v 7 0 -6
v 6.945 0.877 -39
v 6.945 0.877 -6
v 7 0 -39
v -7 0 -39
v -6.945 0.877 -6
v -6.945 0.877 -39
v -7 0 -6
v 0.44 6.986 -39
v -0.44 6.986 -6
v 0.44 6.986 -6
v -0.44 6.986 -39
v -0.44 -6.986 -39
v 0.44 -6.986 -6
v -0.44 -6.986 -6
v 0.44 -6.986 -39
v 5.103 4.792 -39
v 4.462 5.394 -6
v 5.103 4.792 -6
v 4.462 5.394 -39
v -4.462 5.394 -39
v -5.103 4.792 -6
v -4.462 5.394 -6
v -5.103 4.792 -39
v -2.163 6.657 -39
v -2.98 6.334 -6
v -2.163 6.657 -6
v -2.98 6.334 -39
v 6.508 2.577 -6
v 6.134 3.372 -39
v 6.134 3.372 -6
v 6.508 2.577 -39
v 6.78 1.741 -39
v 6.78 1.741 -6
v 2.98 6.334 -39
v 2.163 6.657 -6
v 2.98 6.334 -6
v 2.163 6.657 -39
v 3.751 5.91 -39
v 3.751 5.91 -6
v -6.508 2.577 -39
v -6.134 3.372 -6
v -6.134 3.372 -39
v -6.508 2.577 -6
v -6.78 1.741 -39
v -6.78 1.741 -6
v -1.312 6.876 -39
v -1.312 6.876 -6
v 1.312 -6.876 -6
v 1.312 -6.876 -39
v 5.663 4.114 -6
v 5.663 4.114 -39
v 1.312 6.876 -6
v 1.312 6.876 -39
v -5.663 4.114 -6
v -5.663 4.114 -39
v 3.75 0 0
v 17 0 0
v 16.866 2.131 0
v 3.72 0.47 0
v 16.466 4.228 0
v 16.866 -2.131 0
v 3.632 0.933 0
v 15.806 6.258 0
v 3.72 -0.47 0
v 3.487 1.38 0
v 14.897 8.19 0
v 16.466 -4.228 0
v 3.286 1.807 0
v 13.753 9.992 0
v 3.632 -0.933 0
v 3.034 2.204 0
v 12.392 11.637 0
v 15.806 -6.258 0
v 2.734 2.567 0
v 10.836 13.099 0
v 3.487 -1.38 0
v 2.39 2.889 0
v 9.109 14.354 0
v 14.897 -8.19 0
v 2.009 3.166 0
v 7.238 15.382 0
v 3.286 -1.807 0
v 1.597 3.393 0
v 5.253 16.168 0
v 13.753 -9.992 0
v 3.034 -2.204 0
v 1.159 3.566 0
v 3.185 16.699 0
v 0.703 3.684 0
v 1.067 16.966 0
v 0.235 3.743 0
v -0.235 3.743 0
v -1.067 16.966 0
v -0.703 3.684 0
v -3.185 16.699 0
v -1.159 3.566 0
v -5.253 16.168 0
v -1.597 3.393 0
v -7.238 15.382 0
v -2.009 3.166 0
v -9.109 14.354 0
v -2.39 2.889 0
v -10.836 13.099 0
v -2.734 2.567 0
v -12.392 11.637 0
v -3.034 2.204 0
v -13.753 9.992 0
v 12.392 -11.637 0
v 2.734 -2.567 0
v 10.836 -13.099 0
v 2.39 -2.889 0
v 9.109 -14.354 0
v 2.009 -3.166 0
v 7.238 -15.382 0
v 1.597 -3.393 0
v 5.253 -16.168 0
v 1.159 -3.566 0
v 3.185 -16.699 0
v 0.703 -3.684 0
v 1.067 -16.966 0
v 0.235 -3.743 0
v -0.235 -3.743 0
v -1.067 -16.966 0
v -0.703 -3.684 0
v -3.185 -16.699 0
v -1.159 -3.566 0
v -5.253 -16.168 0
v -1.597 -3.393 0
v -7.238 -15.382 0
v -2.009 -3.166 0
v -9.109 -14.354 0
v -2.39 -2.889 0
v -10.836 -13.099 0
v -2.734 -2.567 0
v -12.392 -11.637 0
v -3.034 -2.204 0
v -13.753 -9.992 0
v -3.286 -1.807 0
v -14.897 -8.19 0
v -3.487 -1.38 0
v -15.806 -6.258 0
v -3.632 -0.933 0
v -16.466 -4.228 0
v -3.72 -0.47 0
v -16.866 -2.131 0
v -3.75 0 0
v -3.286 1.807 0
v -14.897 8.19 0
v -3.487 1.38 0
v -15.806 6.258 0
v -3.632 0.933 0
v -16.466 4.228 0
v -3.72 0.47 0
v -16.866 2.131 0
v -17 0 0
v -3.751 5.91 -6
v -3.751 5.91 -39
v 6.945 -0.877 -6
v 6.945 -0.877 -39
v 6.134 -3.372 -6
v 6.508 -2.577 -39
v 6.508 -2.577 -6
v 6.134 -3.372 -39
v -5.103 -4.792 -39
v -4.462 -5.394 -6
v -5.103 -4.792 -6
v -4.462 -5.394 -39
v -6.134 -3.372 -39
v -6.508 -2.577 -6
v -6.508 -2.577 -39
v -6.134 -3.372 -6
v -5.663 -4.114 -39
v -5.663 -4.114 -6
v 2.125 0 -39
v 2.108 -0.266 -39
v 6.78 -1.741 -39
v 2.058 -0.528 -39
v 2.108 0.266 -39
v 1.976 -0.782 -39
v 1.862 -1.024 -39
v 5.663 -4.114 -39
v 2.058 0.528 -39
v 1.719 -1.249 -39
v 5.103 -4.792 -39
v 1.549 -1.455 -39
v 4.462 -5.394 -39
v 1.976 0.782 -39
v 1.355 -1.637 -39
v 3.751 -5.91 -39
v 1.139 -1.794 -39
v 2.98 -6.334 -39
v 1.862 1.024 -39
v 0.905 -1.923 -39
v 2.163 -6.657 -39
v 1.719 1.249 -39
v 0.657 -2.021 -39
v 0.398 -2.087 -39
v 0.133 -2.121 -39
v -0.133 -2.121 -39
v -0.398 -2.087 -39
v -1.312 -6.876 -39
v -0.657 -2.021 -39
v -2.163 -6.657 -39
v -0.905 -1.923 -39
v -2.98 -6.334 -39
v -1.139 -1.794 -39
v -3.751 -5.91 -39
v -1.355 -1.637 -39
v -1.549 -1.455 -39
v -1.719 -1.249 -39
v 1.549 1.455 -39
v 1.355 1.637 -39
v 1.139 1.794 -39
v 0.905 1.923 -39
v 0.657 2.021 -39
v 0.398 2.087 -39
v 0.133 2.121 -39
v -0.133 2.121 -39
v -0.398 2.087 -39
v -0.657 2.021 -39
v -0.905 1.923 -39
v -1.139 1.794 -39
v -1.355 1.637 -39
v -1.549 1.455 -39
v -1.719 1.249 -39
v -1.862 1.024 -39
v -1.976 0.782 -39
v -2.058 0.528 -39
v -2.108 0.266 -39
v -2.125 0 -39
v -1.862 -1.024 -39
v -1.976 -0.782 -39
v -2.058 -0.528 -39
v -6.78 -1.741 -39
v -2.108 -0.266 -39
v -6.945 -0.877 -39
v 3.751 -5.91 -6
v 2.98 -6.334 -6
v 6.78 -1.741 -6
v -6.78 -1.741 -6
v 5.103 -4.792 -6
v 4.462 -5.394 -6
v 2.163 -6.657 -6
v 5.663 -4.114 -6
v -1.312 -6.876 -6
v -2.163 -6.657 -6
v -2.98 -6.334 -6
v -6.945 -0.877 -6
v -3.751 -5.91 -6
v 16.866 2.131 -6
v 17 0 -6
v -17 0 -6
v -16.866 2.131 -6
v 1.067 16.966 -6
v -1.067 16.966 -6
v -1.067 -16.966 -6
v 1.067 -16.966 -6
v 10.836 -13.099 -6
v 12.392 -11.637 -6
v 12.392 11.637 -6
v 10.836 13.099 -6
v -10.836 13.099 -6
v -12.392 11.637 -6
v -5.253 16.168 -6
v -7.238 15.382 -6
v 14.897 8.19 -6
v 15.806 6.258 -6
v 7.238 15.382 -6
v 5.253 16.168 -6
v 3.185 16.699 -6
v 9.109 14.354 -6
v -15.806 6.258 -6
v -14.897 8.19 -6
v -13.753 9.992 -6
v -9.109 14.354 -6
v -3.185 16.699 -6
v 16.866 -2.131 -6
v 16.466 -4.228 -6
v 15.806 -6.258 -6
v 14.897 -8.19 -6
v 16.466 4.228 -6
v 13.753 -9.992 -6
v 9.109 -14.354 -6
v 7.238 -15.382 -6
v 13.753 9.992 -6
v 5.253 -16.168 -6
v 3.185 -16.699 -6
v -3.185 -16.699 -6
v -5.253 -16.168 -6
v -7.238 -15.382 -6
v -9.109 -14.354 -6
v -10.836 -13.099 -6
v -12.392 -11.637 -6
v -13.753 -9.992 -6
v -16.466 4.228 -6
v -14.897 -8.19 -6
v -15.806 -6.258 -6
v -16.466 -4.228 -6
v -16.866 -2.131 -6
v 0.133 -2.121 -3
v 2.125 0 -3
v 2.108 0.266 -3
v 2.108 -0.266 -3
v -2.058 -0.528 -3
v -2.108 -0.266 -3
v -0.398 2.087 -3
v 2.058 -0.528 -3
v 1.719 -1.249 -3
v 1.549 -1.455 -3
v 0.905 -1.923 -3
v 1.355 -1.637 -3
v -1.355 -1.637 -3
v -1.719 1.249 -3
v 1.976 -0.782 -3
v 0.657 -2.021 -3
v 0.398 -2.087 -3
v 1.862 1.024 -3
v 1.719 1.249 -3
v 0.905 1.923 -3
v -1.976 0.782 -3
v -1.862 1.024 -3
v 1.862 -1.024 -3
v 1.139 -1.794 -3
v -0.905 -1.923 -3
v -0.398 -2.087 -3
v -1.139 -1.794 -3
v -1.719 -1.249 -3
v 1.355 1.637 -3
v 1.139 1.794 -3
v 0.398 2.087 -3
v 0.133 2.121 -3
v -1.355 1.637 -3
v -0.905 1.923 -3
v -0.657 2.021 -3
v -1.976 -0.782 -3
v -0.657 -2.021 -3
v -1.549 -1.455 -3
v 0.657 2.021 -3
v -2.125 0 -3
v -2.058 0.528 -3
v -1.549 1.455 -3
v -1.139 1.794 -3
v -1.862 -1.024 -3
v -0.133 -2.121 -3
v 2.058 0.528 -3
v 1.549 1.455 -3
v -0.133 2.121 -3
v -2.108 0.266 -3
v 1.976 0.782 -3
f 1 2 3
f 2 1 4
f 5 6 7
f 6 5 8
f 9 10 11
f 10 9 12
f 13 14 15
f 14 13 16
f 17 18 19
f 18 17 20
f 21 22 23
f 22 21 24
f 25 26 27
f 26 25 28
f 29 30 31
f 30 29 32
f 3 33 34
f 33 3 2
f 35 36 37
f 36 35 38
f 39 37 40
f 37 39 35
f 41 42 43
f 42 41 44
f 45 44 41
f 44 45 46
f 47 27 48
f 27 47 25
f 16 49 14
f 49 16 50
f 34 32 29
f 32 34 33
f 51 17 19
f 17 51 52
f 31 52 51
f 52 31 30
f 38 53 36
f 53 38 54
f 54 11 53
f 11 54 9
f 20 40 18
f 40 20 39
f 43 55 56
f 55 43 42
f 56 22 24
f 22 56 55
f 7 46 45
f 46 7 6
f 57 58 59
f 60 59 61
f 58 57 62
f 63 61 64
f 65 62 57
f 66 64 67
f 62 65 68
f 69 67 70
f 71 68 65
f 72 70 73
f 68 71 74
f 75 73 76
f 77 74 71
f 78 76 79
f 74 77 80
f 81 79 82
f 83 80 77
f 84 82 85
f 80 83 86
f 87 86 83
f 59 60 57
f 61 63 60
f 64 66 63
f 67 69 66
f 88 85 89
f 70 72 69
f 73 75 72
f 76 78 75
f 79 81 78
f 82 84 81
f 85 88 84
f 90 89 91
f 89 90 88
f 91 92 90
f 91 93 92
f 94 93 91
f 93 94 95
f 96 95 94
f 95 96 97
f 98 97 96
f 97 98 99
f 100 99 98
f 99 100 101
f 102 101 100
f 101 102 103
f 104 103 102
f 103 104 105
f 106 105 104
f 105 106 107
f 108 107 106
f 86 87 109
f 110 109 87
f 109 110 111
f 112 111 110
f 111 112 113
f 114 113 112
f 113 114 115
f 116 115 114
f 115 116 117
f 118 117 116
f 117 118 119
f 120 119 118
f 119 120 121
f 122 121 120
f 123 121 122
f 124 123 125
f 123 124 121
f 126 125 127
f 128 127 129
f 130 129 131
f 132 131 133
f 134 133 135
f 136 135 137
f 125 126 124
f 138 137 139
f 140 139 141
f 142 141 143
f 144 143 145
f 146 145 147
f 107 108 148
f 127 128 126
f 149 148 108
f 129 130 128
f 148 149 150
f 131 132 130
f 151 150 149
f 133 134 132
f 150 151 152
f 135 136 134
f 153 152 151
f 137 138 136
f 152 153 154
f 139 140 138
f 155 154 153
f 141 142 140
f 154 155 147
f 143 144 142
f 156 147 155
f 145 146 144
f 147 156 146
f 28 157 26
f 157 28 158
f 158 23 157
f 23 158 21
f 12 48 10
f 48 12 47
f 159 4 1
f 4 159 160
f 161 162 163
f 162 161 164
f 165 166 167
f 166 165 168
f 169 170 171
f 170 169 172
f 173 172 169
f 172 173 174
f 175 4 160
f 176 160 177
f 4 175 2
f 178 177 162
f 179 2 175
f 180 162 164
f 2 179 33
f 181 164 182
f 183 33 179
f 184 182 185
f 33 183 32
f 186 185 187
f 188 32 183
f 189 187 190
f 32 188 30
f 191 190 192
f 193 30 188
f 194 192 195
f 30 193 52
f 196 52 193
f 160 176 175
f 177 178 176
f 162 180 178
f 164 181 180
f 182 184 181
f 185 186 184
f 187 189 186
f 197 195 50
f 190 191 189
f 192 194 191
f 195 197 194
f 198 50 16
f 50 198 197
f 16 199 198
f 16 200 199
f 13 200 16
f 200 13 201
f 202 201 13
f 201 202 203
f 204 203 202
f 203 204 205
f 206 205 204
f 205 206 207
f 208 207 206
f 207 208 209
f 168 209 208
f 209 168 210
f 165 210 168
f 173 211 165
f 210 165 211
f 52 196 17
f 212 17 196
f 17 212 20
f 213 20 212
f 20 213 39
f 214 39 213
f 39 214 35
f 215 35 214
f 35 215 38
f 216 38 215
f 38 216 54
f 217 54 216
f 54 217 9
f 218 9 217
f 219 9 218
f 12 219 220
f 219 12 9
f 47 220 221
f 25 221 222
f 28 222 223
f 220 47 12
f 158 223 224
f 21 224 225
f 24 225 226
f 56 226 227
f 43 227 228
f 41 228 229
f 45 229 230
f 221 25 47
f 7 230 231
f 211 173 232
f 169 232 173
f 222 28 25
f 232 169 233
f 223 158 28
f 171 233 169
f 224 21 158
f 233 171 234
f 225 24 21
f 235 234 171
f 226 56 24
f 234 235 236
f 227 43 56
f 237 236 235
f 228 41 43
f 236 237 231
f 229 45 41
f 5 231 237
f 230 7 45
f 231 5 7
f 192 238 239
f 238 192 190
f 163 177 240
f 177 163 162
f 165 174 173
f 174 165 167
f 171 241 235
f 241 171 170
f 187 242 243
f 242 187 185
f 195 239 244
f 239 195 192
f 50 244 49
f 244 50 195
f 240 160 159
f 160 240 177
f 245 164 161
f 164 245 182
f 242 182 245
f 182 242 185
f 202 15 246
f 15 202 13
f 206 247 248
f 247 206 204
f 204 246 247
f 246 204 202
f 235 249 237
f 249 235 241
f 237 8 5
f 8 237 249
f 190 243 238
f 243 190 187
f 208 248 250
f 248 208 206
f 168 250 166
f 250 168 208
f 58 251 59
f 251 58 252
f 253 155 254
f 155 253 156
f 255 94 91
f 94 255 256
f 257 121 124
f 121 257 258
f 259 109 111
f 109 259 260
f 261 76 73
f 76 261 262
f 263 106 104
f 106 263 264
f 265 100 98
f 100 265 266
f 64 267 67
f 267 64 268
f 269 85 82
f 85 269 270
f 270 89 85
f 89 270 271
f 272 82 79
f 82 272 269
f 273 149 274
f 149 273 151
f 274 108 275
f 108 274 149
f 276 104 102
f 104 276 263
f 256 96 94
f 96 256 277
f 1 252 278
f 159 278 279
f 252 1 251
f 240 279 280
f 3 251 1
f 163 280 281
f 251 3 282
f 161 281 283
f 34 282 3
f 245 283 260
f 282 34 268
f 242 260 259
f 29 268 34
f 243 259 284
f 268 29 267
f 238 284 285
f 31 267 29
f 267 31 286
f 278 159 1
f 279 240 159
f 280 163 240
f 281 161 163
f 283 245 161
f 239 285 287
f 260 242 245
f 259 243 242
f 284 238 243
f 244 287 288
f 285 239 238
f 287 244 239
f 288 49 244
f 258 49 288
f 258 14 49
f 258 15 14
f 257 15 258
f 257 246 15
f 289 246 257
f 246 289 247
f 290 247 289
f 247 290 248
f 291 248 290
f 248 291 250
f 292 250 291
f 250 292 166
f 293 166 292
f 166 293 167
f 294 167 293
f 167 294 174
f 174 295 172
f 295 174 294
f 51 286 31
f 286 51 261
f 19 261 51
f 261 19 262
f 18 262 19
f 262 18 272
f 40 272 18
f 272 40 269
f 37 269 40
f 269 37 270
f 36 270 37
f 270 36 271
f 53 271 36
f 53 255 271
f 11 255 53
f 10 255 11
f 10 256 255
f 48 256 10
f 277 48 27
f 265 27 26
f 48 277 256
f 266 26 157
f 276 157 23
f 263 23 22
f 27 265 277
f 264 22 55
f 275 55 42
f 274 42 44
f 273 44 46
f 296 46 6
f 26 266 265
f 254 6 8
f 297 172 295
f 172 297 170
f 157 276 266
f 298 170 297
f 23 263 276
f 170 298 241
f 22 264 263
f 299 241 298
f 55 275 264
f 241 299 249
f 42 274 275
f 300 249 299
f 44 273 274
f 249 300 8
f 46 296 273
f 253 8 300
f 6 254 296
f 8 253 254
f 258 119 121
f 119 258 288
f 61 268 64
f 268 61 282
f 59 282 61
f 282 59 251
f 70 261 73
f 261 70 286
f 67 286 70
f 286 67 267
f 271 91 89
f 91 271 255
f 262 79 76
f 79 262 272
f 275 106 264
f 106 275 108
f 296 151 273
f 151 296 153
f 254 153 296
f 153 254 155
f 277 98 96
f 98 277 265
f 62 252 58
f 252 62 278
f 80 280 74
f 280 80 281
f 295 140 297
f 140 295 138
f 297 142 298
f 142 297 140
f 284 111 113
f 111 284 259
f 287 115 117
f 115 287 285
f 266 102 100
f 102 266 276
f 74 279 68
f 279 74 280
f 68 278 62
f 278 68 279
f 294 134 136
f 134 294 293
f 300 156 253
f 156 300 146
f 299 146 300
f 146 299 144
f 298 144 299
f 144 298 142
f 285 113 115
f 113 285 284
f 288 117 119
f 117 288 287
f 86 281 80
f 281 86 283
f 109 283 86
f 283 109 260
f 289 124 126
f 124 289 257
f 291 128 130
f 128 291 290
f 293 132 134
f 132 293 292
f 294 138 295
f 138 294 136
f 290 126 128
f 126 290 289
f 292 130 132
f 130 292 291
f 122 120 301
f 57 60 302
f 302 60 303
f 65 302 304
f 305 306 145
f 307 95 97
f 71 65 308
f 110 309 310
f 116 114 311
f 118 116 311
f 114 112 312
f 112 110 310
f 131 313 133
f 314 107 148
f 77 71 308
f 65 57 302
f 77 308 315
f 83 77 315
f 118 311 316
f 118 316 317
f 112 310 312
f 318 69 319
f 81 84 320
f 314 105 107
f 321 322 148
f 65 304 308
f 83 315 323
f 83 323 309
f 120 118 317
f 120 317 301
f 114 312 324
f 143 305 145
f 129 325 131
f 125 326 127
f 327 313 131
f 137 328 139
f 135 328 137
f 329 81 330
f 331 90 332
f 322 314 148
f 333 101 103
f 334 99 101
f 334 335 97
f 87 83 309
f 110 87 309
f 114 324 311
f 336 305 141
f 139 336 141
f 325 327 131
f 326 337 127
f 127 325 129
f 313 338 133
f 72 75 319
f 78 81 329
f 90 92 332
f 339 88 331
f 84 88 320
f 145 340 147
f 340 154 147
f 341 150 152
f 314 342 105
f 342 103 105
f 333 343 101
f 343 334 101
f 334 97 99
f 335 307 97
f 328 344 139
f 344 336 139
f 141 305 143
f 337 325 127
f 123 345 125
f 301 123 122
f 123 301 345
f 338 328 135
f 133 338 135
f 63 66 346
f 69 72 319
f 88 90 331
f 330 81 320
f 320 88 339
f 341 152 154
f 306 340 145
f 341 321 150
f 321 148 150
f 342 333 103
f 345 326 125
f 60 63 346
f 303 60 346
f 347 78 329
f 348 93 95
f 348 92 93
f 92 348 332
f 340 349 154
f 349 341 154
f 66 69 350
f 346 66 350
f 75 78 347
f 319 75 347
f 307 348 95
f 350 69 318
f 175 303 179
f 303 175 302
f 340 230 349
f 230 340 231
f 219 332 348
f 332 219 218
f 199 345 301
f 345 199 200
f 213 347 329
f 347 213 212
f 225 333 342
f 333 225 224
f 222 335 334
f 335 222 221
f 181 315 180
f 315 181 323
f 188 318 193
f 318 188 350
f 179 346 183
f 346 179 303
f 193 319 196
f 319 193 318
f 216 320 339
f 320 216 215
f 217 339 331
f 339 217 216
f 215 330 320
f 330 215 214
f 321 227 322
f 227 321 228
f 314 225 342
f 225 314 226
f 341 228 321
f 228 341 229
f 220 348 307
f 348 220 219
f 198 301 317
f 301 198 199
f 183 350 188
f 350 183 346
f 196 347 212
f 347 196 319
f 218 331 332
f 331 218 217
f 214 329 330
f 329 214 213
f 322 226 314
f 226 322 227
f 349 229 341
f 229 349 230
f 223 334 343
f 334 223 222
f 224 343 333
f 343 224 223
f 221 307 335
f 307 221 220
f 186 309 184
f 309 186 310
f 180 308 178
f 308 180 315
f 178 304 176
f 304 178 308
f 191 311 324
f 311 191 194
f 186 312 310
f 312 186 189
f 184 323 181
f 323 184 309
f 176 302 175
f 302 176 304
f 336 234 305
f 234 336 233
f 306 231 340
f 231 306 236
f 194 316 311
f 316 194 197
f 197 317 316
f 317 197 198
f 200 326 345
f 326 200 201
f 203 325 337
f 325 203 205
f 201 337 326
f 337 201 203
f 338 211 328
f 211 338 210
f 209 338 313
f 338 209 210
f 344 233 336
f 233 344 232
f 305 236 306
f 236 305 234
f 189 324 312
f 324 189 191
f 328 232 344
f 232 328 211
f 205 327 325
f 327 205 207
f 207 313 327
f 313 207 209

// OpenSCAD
$fn = 50;


difference() {
	union() {
		translate(v = [0, 0, -39.0000000000]) {
			cylinder(h = 39, r = 7.0000000000);
		}
		translate(v = [0, 0, -6.0000000000]) {
			cylinder(h = 6, r = 17.0000000000);
		}
	}
	union() {
		translate(v = [0, 0, 0]) {
			rotate(a = [0, 0, 0]) {
				difference() {
					union() {
						#translate(v = [0, 0, -39.0000000000]) {
							cylinder(h = 39, r = 2.0000000000);
						}
						#translate(v = [0, 0, -3]) {
							cylinder(h = 3, r1 = 2.1250000000, r2 = 3.7500000000);
						}
						#translate(v = [0, 0, -39.0000000000]) {
							cylinder(h = 39, r = 2.1250000000);
						}
						#translate(v = [0, 0, -39.0000000000]) {
							cylinder(h = 39, r = 2.0000000000);
						}
					}
					union();
				}
			}
		}
	}
}
